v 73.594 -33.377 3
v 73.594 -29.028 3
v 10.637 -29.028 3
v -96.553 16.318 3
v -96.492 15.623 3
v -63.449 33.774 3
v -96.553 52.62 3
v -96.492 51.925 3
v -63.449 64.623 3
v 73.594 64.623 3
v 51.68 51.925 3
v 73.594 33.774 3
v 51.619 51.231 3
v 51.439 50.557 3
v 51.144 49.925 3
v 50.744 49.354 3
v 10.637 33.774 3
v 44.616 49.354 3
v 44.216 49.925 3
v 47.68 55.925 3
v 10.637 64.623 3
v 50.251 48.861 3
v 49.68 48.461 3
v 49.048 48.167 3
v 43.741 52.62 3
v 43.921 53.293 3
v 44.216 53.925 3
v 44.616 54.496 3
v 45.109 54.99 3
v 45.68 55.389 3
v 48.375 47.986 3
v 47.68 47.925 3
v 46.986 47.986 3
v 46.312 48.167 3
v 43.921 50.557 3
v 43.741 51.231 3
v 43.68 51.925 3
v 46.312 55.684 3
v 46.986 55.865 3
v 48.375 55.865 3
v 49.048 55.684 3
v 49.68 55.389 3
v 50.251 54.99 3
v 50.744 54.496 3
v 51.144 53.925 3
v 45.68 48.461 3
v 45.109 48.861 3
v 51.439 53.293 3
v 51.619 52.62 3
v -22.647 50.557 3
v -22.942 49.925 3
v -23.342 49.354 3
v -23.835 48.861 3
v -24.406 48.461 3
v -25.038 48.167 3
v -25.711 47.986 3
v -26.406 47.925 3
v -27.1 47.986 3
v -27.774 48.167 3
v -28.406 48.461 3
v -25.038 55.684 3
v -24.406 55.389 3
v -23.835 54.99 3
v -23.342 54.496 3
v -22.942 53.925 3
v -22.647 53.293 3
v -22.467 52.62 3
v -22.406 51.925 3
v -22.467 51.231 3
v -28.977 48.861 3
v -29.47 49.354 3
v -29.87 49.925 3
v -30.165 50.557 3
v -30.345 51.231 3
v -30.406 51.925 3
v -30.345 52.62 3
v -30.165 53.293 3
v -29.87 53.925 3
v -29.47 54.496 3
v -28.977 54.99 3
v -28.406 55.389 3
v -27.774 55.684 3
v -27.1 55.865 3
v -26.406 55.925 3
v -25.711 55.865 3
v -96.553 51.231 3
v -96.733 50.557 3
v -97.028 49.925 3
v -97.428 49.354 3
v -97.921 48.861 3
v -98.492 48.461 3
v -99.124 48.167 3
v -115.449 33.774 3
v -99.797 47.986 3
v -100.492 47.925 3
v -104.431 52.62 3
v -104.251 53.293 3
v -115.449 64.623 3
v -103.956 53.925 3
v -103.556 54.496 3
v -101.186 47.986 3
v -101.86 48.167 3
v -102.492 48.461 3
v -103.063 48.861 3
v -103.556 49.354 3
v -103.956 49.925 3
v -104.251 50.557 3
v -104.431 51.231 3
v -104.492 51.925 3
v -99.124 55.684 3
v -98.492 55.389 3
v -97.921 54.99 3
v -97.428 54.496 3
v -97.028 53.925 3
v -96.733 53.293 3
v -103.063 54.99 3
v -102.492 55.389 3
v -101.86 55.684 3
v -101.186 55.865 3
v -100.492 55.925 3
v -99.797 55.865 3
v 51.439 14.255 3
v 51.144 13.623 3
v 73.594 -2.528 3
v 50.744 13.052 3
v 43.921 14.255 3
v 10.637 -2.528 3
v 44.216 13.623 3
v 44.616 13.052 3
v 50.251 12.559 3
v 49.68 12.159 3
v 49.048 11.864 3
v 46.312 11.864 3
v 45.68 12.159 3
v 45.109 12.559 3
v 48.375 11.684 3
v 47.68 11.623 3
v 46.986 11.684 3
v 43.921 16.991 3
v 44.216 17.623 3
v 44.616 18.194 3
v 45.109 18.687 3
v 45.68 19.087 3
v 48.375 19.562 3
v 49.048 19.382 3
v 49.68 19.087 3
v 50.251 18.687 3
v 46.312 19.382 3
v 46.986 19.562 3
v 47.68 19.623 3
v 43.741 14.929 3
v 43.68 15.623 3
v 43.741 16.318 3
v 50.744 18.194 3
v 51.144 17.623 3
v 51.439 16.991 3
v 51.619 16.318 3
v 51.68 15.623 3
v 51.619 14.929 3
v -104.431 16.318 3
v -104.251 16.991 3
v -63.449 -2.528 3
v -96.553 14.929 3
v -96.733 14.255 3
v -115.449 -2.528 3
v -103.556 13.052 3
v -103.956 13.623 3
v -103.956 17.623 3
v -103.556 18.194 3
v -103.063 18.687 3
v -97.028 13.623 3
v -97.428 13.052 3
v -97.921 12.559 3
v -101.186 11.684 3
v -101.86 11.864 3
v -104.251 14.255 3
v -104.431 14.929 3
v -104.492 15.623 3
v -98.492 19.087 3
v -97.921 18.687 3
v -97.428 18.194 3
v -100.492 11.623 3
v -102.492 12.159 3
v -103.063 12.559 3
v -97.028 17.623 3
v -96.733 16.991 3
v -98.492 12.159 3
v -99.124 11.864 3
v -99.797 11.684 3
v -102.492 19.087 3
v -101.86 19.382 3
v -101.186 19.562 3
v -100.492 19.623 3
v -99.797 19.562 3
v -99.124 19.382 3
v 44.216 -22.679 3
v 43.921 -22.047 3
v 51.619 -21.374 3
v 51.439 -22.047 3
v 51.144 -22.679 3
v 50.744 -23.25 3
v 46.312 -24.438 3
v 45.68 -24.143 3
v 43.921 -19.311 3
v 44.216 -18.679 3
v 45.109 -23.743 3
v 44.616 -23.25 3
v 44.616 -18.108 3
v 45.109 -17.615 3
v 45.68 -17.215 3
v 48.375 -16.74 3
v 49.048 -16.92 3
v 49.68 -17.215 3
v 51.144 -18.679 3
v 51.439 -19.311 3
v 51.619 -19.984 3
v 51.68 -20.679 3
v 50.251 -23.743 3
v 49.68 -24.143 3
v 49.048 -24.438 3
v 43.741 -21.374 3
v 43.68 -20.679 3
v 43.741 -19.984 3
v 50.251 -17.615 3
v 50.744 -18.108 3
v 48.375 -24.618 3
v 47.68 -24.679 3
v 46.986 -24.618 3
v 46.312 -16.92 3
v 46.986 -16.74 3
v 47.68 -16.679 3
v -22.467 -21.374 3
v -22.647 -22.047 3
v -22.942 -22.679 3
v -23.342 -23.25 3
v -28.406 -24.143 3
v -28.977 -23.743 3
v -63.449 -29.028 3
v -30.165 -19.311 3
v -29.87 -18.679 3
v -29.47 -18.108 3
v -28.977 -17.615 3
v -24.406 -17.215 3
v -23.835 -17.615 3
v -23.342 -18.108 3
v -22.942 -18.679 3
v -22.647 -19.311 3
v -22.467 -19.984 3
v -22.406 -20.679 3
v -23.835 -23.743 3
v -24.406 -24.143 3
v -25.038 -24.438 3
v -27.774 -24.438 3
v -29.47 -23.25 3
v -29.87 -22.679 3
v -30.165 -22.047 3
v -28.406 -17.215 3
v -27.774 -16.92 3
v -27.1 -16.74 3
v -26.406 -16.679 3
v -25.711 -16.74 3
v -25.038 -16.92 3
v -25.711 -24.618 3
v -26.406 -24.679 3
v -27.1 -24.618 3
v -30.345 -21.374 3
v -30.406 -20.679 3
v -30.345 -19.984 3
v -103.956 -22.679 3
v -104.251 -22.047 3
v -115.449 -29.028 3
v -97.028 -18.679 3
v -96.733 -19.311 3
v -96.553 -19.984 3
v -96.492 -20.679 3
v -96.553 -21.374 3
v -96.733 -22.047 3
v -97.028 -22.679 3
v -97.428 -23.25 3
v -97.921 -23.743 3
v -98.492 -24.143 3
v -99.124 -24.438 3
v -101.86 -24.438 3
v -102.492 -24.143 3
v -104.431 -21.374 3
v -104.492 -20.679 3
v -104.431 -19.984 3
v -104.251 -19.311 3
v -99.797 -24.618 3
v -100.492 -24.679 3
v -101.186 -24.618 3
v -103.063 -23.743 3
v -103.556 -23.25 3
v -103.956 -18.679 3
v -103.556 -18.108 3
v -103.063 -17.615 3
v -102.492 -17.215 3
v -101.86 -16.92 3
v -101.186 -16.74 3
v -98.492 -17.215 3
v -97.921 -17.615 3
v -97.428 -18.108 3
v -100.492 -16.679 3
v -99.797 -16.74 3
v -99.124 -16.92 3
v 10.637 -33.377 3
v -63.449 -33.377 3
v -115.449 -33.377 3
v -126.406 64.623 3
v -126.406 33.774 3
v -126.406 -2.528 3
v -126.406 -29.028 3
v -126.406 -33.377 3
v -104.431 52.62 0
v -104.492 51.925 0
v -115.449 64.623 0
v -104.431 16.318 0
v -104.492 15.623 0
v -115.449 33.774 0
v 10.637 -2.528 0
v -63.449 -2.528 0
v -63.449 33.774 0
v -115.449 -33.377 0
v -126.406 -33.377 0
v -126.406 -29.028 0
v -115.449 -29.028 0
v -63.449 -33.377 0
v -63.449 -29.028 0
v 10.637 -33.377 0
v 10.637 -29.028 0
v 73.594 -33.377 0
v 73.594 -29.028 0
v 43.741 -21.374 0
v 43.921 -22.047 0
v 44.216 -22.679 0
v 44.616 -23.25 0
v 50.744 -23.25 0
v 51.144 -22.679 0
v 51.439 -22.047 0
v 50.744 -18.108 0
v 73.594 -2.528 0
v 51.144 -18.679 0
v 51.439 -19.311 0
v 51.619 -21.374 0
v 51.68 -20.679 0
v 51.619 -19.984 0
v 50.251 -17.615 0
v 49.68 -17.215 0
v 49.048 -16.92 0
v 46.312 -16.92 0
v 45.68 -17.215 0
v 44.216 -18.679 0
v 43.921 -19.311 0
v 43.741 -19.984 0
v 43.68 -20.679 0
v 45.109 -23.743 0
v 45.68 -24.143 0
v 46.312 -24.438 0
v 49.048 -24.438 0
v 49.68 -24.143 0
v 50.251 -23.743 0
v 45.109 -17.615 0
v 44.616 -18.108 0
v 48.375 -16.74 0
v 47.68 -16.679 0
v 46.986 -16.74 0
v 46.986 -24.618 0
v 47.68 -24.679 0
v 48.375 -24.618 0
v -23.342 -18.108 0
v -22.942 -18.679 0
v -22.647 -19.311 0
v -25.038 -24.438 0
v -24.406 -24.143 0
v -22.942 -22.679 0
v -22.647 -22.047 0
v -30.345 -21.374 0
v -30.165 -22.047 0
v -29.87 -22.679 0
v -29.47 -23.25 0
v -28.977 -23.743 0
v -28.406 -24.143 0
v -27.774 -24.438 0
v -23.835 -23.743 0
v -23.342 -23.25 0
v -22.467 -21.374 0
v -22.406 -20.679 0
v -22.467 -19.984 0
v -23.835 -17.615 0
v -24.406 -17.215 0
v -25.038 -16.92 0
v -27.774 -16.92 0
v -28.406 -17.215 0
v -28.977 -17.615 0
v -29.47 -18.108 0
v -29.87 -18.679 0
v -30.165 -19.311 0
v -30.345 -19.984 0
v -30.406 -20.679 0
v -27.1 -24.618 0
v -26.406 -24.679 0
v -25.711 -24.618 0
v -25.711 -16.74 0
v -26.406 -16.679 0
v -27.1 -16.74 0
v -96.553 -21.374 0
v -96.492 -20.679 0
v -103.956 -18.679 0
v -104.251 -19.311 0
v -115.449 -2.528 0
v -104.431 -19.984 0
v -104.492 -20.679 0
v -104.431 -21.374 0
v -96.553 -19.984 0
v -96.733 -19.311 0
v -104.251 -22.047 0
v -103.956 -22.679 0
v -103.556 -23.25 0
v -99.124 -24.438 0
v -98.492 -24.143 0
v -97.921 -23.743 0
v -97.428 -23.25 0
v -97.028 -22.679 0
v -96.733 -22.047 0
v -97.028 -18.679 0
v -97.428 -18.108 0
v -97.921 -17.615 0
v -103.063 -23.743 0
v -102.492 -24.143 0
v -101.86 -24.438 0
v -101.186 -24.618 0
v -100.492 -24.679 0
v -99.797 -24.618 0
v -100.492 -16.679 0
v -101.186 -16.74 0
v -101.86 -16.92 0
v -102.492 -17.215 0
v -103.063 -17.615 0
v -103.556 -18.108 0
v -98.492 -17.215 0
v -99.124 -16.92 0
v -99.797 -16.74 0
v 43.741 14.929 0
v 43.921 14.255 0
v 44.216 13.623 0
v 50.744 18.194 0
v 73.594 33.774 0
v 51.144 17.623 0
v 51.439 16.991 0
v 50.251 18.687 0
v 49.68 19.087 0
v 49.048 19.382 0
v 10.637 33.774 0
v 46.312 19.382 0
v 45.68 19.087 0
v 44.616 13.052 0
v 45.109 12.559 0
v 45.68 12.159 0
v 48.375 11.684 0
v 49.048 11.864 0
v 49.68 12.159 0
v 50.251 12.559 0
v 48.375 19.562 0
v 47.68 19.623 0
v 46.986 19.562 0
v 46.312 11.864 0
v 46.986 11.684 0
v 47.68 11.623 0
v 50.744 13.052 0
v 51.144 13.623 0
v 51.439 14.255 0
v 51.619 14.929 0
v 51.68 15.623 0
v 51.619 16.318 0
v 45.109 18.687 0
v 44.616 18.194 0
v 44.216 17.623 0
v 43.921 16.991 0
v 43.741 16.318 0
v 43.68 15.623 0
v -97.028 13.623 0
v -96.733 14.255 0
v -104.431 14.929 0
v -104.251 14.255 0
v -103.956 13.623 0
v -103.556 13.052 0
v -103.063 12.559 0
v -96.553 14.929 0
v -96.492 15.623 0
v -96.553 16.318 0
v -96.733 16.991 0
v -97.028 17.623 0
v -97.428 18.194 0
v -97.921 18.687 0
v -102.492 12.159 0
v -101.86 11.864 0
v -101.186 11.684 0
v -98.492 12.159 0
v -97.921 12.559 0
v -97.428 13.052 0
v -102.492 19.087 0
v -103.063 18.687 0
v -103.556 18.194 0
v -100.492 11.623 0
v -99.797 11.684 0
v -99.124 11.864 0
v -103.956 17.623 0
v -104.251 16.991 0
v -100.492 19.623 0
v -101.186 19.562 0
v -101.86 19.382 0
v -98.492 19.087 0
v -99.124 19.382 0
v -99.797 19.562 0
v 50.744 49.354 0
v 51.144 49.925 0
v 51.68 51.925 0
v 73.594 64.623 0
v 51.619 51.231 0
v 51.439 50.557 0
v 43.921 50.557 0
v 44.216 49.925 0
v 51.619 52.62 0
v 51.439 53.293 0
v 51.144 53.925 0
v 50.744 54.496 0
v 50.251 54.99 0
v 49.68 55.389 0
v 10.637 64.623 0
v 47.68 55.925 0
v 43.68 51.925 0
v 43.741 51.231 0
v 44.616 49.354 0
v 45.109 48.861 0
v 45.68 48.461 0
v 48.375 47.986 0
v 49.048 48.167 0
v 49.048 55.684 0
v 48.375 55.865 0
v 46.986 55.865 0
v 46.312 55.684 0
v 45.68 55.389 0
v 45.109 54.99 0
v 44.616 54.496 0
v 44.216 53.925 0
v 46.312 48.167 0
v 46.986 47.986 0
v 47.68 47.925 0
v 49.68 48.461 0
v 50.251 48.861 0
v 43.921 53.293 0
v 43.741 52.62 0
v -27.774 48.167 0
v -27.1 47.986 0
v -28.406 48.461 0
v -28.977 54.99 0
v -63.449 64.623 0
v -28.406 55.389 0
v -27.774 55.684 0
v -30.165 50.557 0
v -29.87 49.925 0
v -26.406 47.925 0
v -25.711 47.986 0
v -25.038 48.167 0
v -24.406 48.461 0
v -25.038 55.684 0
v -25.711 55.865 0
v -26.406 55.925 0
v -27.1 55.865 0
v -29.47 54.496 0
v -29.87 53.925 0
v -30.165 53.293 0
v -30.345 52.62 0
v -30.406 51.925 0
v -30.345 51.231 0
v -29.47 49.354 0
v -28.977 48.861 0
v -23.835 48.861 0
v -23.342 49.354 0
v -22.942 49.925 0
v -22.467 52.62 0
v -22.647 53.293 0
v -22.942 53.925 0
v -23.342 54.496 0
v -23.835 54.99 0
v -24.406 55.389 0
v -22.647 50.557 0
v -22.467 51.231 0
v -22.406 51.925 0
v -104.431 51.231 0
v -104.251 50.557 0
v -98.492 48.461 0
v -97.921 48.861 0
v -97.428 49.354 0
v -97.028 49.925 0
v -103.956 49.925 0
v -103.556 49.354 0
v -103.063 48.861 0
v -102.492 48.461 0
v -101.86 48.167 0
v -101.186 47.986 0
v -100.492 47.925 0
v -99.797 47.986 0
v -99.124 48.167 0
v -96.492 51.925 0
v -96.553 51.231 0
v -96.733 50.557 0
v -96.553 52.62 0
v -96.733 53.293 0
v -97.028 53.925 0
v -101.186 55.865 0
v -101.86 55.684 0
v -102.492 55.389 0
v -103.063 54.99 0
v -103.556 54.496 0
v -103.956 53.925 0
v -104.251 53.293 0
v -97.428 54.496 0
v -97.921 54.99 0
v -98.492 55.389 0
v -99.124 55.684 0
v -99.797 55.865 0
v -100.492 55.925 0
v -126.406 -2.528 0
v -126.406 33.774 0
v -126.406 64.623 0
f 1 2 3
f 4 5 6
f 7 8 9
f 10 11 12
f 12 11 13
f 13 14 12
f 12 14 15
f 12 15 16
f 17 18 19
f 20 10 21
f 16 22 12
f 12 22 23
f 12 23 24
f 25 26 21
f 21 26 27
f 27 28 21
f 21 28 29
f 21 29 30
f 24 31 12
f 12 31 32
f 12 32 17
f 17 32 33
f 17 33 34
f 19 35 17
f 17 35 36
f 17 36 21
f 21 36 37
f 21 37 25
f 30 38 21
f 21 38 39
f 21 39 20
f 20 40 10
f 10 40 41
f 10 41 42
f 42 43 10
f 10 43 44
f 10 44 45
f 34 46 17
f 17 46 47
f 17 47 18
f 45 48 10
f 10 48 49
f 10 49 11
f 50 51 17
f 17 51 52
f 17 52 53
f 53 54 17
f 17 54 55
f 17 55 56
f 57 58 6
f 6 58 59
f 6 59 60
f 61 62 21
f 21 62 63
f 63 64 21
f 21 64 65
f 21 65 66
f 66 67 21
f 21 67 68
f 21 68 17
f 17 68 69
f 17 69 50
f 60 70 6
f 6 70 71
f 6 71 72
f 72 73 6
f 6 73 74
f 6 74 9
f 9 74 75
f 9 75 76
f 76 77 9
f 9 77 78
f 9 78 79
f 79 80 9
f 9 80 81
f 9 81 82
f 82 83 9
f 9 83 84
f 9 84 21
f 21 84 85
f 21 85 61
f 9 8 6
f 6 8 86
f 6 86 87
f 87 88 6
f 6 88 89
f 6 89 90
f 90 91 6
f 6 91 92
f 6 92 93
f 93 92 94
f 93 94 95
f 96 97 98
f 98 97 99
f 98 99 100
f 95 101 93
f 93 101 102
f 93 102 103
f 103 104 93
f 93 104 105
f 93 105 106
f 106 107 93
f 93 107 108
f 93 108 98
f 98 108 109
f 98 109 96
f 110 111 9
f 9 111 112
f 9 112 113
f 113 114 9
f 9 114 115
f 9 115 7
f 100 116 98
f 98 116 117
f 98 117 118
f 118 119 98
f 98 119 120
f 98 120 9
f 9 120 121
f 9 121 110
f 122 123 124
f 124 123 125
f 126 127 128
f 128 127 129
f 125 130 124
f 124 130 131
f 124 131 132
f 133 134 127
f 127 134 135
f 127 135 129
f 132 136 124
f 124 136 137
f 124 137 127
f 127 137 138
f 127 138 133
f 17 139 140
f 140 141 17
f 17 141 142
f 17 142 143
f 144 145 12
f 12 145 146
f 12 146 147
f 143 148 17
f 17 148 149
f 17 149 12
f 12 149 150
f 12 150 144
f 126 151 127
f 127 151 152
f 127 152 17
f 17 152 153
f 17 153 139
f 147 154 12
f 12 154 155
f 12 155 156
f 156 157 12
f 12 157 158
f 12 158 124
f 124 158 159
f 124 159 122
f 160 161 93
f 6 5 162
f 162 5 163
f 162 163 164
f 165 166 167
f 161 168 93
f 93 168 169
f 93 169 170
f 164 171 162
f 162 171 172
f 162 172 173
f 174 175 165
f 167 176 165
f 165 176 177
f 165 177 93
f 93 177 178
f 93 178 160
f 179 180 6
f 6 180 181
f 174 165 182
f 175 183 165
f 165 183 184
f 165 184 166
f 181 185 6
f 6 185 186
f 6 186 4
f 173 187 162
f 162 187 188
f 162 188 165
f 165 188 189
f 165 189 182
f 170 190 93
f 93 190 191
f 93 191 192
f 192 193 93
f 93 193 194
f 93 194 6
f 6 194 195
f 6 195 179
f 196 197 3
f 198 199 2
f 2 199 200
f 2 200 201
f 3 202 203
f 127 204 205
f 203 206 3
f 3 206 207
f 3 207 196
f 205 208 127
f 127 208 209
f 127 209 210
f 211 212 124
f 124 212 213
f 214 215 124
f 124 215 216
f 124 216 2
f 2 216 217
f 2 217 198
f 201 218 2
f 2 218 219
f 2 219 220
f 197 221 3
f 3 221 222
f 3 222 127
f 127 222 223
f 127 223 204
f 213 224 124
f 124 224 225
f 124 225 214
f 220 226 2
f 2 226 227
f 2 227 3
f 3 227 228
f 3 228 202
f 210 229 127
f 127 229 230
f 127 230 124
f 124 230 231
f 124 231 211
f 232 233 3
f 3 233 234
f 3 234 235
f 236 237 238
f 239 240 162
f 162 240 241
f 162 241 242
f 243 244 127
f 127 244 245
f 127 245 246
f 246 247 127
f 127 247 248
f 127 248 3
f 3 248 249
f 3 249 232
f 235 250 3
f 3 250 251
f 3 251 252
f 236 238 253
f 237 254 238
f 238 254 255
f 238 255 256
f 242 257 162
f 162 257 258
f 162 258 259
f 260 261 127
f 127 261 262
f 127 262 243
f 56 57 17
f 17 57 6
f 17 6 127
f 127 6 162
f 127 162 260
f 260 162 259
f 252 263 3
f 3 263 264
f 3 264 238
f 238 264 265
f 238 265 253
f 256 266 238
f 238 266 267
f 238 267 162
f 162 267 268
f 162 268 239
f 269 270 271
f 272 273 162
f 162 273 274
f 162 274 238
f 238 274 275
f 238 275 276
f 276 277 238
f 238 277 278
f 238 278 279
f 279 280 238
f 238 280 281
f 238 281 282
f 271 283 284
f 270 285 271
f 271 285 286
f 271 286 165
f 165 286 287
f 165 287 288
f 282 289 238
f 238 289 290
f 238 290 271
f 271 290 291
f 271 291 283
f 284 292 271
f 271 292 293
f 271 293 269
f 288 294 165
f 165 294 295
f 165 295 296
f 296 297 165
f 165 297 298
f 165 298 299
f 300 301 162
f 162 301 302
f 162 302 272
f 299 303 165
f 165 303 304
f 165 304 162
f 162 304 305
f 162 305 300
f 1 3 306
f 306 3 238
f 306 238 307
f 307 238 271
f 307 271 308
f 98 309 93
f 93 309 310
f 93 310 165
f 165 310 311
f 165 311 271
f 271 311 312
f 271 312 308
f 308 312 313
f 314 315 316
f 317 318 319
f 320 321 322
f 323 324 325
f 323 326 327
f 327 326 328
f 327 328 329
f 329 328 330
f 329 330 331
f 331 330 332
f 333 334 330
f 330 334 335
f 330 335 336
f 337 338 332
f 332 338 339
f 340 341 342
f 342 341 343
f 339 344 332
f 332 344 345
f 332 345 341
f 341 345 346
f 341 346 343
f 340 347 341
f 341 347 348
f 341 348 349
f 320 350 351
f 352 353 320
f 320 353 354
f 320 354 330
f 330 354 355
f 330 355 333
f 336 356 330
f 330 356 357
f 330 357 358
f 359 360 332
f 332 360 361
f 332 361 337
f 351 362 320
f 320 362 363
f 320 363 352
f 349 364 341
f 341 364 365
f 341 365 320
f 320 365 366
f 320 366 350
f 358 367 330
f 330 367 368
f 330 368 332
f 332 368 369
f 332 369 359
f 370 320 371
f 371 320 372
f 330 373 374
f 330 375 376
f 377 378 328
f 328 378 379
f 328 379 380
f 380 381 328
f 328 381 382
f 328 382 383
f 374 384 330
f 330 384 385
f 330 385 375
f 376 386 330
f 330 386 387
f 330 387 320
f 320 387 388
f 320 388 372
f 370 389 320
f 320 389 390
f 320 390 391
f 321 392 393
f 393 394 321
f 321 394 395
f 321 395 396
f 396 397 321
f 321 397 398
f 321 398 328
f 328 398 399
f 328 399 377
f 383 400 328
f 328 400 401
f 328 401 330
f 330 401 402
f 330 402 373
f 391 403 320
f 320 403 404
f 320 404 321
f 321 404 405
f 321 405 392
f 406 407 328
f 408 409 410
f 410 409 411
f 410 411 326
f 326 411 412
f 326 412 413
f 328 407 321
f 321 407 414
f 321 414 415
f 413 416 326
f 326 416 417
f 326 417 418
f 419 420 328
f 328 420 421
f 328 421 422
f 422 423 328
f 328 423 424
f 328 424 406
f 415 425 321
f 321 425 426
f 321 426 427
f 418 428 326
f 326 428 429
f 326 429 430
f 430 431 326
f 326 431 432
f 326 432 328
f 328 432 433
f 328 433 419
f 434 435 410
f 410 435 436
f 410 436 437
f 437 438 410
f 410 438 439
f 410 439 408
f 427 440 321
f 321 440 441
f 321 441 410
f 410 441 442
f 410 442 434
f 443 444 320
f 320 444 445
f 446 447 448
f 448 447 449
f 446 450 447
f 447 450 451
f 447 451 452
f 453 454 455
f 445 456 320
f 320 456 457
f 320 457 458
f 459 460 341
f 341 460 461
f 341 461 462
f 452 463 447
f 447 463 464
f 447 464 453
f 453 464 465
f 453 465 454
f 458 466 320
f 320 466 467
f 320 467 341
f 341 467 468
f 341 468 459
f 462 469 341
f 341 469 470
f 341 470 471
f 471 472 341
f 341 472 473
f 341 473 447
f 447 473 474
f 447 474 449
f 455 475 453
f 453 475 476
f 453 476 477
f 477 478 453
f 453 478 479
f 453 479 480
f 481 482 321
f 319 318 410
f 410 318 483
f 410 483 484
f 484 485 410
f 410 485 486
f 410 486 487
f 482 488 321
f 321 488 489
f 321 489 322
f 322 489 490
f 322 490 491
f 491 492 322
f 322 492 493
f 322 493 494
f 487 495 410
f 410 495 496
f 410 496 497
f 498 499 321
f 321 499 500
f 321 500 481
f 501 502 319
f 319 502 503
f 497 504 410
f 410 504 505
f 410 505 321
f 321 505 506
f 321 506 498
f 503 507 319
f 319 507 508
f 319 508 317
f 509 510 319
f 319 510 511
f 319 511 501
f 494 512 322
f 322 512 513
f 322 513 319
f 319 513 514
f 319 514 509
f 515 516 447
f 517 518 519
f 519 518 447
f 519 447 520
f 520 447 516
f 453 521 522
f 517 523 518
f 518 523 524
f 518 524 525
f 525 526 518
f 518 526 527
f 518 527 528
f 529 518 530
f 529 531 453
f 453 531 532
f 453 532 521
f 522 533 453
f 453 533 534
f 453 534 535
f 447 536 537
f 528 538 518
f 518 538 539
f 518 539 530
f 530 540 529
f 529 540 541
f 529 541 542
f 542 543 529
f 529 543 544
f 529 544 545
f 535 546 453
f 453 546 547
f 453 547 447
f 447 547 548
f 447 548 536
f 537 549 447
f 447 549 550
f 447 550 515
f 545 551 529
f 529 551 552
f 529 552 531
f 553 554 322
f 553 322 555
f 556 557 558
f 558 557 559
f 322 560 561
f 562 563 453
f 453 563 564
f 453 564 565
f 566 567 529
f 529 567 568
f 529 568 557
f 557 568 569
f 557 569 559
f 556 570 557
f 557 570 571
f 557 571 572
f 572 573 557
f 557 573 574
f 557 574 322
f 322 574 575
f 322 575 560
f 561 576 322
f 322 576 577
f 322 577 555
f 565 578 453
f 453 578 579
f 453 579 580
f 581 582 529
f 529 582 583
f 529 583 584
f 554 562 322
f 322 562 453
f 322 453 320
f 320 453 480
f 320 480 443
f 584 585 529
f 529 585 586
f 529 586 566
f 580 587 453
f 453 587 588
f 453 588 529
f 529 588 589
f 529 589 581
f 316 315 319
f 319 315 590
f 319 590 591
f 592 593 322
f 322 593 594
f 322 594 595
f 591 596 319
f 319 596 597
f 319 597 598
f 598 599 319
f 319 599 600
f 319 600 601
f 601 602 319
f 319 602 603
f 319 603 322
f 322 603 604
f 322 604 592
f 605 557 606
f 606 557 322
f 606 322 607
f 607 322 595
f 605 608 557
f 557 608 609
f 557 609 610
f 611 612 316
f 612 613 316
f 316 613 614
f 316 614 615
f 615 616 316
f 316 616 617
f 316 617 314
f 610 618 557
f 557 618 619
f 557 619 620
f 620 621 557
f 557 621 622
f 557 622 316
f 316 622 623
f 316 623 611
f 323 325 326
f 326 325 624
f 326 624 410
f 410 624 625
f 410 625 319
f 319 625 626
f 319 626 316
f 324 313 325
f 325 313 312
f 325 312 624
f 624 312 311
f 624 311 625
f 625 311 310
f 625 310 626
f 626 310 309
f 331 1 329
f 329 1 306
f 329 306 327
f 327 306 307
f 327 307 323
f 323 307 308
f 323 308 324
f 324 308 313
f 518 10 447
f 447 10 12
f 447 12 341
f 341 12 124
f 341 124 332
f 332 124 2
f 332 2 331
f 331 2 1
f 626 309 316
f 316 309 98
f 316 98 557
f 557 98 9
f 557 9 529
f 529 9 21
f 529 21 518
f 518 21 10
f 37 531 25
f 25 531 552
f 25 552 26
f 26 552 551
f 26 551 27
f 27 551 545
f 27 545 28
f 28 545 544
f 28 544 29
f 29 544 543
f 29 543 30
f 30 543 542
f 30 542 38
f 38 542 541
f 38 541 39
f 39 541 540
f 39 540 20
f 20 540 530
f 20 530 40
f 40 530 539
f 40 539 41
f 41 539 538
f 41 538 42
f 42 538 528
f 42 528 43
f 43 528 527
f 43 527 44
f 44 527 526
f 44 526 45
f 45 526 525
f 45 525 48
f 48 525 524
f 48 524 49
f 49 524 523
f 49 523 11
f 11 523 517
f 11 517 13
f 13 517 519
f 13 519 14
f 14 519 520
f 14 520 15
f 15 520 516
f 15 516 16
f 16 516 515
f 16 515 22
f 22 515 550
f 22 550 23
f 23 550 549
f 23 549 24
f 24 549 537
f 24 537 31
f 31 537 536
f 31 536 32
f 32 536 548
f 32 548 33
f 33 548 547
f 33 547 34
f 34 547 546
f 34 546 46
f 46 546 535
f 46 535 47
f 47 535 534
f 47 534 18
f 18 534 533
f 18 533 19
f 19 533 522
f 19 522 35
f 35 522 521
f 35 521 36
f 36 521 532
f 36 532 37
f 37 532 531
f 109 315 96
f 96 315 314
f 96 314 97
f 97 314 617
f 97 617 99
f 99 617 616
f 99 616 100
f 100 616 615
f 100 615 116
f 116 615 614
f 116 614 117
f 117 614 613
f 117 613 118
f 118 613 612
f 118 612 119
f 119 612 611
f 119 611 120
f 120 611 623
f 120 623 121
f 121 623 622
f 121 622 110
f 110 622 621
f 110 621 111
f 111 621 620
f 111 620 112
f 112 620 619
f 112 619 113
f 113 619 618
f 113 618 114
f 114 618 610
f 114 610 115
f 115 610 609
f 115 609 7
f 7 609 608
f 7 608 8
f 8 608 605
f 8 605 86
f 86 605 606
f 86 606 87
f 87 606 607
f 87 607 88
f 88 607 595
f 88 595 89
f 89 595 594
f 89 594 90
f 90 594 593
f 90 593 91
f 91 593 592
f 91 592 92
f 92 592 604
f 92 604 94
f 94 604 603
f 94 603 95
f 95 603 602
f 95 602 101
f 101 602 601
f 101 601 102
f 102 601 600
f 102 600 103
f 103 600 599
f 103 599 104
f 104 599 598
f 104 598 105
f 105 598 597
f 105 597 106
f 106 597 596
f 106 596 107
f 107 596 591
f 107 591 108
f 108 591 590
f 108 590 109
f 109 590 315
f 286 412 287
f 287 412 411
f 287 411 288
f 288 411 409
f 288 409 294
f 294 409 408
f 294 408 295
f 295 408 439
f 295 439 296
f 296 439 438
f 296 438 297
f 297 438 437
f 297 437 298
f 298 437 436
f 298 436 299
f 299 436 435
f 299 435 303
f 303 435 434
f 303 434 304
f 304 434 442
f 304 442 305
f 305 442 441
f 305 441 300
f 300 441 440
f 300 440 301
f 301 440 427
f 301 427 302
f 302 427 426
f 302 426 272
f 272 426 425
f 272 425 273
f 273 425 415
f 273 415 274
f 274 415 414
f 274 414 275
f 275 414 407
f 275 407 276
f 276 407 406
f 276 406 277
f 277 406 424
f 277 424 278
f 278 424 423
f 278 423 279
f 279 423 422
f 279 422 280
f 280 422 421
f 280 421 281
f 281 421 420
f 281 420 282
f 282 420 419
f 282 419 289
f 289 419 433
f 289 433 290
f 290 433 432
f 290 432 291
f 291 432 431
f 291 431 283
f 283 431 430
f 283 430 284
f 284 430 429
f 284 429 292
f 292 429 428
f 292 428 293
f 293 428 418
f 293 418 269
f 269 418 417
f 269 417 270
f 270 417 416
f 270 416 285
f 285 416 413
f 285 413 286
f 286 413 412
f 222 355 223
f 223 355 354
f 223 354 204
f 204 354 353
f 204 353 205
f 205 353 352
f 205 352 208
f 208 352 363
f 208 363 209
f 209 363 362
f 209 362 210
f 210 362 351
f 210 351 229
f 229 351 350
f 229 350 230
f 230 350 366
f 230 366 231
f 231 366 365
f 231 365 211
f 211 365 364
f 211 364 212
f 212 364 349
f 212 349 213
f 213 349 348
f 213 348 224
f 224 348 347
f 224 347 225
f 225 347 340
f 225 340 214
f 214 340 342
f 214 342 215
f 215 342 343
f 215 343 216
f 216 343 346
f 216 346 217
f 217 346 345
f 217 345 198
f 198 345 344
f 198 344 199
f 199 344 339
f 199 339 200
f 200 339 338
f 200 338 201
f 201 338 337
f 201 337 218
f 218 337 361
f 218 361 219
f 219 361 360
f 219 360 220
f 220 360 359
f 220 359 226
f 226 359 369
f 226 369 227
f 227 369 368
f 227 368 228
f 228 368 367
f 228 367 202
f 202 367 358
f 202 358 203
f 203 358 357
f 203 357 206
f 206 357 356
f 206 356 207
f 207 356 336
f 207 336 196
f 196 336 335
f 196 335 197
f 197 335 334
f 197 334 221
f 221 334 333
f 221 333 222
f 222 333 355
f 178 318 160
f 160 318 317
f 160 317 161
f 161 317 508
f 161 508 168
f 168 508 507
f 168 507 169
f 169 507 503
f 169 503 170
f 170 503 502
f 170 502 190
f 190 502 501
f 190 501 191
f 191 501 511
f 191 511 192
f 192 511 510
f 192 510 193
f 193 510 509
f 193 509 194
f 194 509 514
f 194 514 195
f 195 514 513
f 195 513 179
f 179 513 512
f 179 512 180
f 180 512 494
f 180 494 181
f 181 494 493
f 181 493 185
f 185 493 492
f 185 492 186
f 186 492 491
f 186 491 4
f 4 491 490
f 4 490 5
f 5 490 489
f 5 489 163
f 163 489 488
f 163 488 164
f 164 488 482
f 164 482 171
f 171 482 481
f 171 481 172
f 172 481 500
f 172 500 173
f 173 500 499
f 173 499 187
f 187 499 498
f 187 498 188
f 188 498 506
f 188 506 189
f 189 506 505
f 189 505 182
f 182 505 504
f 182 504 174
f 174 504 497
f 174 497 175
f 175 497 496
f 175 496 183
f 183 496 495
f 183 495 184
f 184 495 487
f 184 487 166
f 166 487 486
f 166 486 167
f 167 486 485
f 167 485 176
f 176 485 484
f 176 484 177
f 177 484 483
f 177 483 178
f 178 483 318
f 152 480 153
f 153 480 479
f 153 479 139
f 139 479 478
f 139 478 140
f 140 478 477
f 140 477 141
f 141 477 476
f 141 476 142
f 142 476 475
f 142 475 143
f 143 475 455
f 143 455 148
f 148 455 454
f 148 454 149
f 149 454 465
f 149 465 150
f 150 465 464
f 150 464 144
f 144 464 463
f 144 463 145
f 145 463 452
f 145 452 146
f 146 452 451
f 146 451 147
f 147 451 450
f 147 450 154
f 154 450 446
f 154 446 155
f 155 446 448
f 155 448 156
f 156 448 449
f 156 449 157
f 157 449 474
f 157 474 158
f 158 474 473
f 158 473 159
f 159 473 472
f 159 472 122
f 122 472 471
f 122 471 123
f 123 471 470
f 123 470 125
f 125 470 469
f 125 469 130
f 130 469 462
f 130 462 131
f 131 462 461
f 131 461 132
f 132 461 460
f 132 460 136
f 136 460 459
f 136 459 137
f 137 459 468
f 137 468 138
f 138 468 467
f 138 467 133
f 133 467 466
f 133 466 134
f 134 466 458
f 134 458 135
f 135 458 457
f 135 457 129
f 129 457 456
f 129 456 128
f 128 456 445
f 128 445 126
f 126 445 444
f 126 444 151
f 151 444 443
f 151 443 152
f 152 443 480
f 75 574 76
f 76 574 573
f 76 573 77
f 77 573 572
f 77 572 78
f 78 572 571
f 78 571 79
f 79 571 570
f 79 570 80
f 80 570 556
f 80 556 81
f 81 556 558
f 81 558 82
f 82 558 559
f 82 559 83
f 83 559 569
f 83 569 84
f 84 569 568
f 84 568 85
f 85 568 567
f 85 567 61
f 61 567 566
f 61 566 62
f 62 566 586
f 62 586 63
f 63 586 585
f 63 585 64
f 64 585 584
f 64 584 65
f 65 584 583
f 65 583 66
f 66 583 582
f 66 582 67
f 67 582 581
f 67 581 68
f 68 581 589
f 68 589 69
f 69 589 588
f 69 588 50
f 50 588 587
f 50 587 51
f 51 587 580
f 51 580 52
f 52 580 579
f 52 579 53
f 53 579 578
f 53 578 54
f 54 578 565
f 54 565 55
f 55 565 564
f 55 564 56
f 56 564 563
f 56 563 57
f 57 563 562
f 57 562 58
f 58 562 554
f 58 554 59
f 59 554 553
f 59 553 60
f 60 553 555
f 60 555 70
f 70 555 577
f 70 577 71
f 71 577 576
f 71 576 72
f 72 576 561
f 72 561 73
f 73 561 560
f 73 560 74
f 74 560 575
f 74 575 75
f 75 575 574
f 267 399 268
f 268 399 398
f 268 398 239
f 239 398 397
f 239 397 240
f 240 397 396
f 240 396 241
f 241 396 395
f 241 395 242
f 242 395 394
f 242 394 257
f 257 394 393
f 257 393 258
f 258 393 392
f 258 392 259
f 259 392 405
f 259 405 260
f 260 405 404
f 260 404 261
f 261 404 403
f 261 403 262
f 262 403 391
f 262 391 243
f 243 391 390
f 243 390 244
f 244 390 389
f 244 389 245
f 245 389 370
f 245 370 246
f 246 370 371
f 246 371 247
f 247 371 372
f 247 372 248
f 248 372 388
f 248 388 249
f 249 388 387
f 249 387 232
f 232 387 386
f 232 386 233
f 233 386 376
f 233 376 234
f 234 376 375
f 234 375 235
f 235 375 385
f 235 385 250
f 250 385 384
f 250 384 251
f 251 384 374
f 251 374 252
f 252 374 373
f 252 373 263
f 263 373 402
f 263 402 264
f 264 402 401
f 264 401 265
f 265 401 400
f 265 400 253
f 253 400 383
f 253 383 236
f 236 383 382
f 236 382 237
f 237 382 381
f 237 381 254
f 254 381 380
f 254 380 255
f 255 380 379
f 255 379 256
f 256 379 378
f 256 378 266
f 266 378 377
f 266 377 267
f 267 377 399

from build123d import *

# Parameters (mm, degrees)
SKETCH1_W           = 200
SKETCH1_H           = 98
SKETCH1_R           = 4
BOSS_EXTRUDE1_DEPTH = 3


with BuildPart() as part:
    # Sketch1 → Boss-Extrude1 (new body)
    with BuildSketch(Plane.XY):
        with Locations((-26.405797101, 15.623188406)):
            Rectangle(SKETCH1_W, SKETCH1_H)
        with Locations((47.680210455, 51.925332109)):
            Circle(SKETCH1_R, mode=Mode.SUBTRACT)
        with Locations(Location((-100.491804658, 51.925332109, 0), (0, 0, 180))):
            Circle(SKETCH1_R, mode=Mode.SUBTRACT)
        with Locations((-100.491804658, -20.678955297)):
            Circle(SKETCH1_R, mode=Mode.SUBTRACT)
        with Locations(Location((47.680210455, -20.678955297, 0), (0, 0, 180))):
            Circle(SKETCH1_R, mode=Mode.SUBTRACT)
        with Locations((-100.491804658, 15.623188406)):
            Circle(SKETCH1_R, mode=Mode.SUBTRACT)
        with Locations(Location((47.680210455, 15.623188406, 0), (0, 0, 180))):
            Circle(SKETCH1_R, mode=Mode.SUBTRACT)
        with Locations((-26.405797101, 51.925332109)):
            Circle(SKETCH1_R, mode=Mode.SUBTRACT)
        with Locations(Location((-26.405797101, -20.678955297, 0), (0, 0, 180))):
            Circle(SKETCH1_R, mode=Mode.SUBTRACT)
    extrude(amount=BOSS_EXTRUDE1_DEPTH)


solid = part.part
